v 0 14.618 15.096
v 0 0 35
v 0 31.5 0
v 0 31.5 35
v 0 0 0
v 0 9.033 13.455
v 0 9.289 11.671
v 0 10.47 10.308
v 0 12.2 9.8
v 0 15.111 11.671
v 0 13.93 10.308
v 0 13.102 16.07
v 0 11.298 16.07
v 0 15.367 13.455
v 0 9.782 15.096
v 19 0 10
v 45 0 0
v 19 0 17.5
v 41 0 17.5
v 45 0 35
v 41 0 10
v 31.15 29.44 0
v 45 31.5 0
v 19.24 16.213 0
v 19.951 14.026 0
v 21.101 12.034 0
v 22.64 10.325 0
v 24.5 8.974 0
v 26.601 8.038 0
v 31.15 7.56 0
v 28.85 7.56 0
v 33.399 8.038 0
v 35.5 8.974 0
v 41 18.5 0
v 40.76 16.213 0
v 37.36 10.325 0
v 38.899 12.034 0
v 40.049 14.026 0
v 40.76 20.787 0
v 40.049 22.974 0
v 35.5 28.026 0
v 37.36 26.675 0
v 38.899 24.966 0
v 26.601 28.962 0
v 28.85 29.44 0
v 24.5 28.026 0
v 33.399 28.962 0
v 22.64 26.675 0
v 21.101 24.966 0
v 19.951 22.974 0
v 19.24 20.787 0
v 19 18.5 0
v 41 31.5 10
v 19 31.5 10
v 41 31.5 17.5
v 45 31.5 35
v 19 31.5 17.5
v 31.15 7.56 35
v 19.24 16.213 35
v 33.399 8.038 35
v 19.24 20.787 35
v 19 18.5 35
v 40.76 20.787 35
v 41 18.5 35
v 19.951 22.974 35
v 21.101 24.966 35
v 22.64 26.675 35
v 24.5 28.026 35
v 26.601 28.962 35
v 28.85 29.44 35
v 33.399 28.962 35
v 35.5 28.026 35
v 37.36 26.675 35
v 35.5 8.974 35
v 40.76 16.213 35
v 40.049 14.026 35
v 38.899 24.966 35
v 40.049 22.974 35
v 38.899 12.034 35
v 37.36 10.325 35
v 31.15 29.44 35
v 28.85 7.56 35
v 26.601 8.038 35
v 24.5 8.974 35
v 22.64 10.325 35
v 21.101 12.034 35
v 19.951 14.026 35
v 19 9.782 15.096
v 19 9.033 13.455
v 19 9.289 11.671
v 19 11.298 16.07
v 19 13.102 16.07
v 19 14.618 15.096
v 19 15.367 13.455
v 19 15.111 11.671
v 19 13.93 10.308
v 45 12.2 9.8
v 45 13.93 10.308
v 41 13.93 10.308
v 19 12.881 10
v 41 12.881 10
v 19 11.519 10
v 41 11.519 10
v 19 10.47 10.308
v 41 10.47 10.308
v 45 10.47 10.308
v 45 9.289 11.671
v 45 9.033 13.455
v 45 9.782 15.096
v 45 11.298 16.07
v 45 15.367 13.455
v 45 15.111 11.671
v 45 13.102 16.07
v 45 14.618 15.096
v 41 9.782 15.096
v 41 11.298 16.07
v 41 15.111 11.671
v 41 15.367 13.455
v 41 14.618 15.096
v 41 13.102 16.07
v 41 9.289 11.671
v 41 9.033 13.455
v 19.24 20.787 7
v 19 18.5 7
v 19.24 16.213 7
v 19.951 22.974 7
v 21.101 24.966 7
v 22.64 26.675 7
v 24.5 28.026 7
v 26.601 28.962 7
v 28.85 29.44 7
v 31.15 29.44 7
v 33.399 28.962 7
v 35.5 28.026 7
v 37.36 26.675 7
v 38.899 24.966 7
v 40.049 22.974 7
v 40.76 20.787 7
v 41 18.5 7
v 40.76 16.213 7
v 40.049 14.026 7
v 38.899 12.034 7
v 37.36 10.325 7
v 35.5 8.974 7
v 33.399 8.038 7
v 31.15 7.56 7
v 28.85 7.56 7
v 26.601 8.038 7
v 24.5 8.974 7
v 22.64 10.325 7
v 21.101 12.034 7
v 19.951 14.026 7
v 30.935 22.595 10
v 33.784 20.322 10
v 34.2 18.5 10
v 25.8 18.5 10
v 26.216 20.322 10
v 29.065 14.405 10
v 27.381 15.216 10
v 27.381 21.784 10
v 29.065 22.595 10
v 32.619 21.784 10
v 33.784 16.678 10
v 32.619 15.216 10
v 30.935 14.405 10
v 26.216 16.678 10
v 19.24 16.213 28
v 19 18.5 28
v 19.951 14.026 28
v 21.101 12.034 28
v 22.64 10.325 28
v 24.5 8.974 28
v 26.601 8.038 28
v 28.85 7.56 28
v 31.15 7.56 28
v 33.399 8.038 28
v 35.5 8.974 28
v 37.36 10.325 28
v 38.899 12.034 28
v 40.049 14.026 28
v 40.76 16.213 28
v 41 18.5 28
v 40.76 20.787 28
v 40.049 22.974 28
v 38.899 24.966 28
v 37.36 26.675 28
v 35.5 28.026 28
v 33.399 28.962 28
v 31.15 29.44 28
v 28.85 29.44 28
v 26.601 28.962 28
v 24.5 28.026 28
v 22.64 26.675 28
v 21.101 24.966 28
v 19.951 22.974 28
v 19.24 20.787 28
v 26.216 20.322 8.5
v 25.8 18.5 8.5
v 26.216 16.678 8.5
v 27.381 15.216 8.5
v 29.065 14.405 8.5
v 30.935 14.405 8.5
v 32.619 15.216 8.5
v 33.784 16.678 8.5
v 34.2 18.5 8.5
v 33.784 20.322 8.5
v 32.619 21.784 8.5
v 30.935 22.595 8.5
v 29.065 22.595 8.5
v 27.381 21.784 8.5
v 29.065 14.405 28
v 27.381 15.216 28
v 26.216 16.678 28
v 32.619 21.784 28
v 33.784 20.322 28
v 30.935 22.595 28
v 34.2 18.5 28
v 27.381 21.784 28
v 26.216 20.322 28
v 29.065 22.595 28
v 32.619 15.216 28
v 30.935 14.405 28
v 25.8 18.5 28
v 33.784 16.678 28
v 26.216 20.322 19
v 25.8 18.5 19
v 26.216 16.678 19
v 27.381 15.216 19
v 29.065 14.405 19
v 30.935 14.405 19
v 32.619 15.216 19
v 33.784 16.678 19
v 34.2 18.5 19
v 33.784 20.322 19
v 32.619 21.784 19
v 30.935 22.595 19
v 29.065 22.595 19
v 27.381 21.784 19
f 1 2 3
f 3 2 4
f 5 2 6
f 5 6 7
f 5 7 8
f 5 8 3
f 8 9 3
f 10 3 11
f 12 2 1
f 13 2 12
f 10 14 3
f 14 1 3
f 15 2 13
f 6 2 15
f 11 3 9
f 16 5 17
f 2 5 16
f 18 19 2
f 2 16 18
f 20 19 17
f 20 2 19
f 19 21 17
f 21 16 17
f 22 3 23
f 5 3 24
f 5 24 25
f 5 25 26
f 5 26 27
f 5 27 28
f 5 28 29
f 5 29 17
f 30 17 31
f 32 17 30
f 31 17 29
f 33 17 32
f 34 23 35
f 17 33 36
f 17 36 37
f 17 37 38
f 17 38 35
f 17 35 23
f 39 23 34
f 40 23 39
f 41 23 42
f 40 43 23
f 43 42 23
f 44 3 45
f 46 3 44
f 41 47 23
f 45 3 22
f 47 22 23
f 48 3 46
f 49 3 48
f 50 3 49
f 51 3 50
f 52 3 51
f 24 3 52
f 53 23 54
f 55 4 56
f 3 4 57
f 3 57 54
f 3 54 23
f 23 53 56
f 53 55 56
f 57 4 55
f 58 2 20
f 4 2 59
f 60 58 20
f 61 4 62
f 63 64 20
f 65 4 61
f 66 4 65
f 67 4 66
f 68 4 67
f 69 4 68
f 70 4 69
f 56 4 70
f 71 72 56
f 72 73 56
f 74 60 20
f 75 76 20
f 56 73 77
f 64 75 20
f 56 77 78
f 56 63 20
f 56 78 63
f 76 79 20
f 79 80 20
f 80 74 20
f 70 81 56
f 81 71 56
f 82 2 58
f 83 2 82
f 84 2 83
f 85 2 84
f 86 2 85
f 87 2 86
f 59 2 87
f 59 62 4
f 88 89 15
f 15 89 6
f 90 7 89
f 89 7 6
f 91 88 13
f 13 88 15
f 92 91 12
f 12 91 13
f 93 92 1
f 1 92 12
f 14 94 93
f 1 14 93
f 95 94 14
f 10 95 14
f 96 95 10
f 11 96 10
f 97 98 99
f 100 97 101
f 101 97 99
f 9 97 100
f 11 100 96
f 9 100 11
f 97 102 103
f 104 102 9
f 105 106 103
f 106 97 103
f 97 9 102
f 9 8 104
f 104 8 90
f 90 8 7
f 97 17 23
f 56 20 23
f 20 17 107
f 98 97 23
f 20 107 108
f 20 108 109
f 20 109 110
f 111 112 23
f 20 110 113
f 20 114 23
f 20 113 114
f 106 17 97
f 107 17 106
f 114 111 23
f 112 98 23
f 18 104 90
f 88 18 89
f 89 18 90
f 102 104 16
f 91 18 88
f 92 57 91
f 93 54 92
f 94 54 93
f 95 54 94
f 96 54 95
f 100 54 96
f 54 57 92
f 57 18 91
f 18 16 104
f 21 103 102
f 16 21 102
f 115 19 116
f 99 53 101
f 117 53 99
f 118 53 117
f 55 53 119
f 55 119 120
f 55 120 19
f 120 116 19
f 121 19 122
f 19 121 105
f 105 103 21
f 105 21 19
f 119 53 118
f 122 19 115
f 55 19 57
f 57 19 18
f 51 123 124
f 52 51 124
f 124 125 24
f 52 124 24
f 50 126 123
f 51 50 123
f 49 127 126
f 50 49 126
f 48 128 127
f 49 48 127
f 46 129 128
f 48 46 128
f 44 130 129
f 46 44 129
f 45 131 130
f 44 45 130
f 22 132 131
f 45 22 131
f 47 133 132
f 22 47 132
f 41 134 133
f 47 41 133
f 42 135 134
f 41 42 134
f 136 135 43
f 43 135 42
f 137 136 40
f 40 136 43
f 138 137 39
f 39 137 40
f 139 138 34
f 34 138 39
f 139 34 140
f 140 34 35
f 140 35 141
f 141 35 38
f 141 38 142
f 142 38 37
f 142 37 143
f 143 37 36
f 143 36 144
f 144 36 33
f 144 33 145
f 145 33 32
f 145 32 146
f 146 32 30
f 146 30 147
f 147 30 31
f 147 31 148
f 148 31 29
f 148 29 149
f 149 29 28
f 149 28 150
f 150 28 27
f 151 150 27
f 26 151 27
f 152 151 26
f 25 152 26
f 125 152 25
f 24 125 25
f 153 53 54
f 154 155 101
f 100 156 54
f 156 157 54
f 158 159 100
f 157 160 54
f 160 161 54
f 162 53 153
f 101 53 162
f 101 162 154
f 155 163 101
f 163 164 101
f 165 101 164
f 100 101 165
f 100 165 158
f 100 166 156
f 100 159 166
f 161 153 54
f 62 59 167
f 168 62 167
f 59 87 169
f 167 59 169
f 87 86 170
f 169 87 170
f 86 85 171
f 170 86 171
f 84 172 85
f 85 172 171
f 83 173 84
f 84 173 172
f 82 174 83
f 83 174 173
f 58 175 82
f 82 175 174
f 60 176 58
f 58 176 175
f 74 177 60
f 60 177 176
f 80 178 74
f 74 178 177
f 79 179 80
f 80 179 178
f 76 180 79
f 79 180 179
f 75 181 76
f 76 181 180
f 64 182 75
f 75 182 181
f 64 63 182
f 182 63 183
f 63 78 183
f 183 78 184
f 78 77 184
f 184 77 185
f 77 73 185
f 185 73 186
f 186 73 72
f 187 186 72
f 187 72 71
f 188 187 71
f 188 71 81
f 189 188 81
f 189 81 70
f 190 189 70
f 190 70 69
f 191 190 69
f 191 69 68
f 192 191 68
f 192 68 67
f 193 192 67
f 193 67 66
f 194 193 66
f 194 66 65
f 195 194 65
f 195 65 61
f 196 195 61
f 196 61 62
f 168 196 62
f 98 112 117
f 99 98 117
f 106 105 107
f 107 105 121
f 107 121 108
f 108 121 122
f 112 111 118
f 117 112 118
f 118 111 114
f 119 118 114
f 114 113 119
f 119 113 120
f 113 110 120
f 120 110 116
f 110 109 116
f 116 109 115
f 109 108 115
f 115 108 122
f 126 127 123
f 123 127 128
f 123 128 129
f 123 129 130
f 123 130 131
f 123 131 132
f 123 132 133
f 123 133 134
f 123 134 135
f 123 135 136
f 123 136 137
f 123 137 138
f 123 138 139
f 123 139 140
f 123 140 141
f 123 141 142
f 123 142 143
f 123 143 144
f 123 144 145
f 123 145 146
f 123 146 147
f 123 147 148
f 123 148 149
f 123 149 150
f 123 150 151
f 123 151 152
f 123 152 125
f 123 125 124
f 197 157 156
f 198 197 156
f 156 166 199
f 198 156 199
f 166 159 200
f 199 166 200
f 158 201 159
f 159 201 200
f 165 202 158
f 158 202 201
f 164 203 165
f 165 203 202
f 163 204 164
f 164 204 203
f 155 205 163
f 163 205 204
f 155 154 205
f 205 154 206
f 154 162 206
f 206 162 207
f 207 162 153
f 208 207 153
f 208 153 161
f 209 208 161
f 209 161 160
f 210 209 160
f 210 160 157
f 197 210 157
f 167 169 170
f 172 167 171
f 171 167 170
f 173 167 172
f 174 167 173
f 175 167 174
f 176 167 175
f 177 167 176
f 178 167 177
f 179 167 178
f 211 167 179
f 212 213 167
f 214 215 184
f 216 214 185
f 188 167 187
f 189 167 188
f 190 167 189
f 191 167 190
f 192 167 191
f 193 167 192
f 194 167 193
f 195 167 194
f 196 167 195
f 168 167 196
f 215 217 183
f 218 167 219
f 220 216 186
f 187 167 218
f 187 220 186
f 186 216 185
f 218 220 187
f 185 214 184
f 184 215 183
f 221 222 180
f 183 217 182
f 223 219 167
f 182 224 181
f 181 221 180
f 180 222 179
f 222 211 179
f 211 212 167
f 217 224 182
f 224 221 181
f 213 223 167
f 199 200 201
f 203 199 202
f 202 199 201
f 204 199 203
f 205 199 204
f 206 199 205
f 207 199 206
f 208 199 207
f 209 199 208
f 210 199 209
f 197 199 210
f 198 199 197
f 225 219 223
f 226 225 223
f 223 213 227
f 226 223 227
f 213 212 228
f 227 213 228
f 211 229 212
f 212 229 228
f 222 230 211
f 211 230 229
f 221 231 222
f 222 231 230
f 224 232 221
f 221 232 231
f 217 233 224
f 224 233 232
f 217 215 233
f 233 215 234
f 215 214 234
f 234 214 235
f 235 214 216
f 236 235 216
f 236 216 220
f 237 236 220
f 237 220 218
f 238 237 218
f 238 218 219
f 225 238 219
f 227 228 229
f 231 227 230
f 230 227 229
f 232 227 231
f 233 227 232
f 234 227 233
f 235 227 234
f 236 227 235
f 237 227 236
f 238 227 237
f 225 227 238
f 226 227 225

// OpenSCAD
//Parameters
bolt_bearing_diameter = 22.0;
bolt_bearing_thickness = 7.0;
bolt_diameter = 8.0;
bolt_offset = 22.0;
bolt_wall = 2.0;
bolt_drill_tolerance = 0.4;
tap_diameter = 6.0;
tap_offset = 18.0;
tap_bearing_diameter = 19.0;
tap_bearing_thickness = 12.0;
tap_wall = 4.0;
tap_drill_tolerance = 0.4;
cut_depth = 0.7;
bridge_thickness = 1.5;

//helper variables
render_error = 1;
tap_extra_length = (bolt_bearing_diameter/2)+tap_wall;
box_total_length = tap_offset+tap_extra_length+tap_bearing_thickness;
box_total_width = ((bolt_bearing_diameter+bolt_diameter+tap_diameter+tap_bearing_diameter)/2)+(bolt_wall*2);
box_total_height = bolt_offset+bolt_bearing_thickness+tap_diameter;

difference()
{
	//chasis
	cube([box_total_length,box_total_width,box_total_height]);

	union()
	{
		//bolt
		translate([tap_bearing_thickness+tap_offset,((bolt_diameter+tap_diameter+tap_bearing_diameter)/2)+bolt_wall,-render_error])
		union()
		{
			//bolt bearing top
			translate([0,0,render_error+bolt_offset+tap_diameter])
				cylinder(r=bolt_bearing_diameter/2,h=bolt_bearing_thickness+render_error);
		
			//bolt hole guide
			translate([0,0,render_error+bolt_bearing_thickness+(tap_diameter*1.5)+bridge_thickness+bridge_thickness])
				cylinder(r=(bolt_diameter+bolt_drill_tolerance)/2,h=bolt_offset-bolt_bearing_thickness-bridge_thickness);
		
			//bolt bearing bottom
			cylinder(r=bolt_bearing_diameter/2,h=bolt_bearing_thickness+render_error);
			
			//bolt hole guide bottom
			translate([0,0,bolt_bearing_thickness+bridge_thickness+render_error])
				cylinder(r=(bolt_diameter+bolt_drill_tolerance)/2,h=(tap_diameter*1.5)-bridge_thickness);
		
			//bolt cutting window
			translate([-(bolt_bearing_diameter/2),-(bolt_bearing_diameter),render_error+bolt_bearing_thickness+(tap_diameter/2)])
				cube([bolt_bearing_diameter,bolt_bearing_diameter*2,tap_diameter+bridge_thickness]);
		}
	
	
		//tap
		translate([-render_error,(tap_bearing_diameter/2)+bolt_wall+cut_depth,bolt_bearing_thickness+tap_diameter])
		rotate([0,90,0])
		union()
		{
			//tap bearing
//			cylinder(r=tap_bearing_diameter/2,h=tap_bearing_thickness+render_error);
			//tap hole
			cylinder(r=(tap_diameter+tap_drill_tolerance)/2,h=box_total_length+(render_error*2));
		}
	}
	
}
